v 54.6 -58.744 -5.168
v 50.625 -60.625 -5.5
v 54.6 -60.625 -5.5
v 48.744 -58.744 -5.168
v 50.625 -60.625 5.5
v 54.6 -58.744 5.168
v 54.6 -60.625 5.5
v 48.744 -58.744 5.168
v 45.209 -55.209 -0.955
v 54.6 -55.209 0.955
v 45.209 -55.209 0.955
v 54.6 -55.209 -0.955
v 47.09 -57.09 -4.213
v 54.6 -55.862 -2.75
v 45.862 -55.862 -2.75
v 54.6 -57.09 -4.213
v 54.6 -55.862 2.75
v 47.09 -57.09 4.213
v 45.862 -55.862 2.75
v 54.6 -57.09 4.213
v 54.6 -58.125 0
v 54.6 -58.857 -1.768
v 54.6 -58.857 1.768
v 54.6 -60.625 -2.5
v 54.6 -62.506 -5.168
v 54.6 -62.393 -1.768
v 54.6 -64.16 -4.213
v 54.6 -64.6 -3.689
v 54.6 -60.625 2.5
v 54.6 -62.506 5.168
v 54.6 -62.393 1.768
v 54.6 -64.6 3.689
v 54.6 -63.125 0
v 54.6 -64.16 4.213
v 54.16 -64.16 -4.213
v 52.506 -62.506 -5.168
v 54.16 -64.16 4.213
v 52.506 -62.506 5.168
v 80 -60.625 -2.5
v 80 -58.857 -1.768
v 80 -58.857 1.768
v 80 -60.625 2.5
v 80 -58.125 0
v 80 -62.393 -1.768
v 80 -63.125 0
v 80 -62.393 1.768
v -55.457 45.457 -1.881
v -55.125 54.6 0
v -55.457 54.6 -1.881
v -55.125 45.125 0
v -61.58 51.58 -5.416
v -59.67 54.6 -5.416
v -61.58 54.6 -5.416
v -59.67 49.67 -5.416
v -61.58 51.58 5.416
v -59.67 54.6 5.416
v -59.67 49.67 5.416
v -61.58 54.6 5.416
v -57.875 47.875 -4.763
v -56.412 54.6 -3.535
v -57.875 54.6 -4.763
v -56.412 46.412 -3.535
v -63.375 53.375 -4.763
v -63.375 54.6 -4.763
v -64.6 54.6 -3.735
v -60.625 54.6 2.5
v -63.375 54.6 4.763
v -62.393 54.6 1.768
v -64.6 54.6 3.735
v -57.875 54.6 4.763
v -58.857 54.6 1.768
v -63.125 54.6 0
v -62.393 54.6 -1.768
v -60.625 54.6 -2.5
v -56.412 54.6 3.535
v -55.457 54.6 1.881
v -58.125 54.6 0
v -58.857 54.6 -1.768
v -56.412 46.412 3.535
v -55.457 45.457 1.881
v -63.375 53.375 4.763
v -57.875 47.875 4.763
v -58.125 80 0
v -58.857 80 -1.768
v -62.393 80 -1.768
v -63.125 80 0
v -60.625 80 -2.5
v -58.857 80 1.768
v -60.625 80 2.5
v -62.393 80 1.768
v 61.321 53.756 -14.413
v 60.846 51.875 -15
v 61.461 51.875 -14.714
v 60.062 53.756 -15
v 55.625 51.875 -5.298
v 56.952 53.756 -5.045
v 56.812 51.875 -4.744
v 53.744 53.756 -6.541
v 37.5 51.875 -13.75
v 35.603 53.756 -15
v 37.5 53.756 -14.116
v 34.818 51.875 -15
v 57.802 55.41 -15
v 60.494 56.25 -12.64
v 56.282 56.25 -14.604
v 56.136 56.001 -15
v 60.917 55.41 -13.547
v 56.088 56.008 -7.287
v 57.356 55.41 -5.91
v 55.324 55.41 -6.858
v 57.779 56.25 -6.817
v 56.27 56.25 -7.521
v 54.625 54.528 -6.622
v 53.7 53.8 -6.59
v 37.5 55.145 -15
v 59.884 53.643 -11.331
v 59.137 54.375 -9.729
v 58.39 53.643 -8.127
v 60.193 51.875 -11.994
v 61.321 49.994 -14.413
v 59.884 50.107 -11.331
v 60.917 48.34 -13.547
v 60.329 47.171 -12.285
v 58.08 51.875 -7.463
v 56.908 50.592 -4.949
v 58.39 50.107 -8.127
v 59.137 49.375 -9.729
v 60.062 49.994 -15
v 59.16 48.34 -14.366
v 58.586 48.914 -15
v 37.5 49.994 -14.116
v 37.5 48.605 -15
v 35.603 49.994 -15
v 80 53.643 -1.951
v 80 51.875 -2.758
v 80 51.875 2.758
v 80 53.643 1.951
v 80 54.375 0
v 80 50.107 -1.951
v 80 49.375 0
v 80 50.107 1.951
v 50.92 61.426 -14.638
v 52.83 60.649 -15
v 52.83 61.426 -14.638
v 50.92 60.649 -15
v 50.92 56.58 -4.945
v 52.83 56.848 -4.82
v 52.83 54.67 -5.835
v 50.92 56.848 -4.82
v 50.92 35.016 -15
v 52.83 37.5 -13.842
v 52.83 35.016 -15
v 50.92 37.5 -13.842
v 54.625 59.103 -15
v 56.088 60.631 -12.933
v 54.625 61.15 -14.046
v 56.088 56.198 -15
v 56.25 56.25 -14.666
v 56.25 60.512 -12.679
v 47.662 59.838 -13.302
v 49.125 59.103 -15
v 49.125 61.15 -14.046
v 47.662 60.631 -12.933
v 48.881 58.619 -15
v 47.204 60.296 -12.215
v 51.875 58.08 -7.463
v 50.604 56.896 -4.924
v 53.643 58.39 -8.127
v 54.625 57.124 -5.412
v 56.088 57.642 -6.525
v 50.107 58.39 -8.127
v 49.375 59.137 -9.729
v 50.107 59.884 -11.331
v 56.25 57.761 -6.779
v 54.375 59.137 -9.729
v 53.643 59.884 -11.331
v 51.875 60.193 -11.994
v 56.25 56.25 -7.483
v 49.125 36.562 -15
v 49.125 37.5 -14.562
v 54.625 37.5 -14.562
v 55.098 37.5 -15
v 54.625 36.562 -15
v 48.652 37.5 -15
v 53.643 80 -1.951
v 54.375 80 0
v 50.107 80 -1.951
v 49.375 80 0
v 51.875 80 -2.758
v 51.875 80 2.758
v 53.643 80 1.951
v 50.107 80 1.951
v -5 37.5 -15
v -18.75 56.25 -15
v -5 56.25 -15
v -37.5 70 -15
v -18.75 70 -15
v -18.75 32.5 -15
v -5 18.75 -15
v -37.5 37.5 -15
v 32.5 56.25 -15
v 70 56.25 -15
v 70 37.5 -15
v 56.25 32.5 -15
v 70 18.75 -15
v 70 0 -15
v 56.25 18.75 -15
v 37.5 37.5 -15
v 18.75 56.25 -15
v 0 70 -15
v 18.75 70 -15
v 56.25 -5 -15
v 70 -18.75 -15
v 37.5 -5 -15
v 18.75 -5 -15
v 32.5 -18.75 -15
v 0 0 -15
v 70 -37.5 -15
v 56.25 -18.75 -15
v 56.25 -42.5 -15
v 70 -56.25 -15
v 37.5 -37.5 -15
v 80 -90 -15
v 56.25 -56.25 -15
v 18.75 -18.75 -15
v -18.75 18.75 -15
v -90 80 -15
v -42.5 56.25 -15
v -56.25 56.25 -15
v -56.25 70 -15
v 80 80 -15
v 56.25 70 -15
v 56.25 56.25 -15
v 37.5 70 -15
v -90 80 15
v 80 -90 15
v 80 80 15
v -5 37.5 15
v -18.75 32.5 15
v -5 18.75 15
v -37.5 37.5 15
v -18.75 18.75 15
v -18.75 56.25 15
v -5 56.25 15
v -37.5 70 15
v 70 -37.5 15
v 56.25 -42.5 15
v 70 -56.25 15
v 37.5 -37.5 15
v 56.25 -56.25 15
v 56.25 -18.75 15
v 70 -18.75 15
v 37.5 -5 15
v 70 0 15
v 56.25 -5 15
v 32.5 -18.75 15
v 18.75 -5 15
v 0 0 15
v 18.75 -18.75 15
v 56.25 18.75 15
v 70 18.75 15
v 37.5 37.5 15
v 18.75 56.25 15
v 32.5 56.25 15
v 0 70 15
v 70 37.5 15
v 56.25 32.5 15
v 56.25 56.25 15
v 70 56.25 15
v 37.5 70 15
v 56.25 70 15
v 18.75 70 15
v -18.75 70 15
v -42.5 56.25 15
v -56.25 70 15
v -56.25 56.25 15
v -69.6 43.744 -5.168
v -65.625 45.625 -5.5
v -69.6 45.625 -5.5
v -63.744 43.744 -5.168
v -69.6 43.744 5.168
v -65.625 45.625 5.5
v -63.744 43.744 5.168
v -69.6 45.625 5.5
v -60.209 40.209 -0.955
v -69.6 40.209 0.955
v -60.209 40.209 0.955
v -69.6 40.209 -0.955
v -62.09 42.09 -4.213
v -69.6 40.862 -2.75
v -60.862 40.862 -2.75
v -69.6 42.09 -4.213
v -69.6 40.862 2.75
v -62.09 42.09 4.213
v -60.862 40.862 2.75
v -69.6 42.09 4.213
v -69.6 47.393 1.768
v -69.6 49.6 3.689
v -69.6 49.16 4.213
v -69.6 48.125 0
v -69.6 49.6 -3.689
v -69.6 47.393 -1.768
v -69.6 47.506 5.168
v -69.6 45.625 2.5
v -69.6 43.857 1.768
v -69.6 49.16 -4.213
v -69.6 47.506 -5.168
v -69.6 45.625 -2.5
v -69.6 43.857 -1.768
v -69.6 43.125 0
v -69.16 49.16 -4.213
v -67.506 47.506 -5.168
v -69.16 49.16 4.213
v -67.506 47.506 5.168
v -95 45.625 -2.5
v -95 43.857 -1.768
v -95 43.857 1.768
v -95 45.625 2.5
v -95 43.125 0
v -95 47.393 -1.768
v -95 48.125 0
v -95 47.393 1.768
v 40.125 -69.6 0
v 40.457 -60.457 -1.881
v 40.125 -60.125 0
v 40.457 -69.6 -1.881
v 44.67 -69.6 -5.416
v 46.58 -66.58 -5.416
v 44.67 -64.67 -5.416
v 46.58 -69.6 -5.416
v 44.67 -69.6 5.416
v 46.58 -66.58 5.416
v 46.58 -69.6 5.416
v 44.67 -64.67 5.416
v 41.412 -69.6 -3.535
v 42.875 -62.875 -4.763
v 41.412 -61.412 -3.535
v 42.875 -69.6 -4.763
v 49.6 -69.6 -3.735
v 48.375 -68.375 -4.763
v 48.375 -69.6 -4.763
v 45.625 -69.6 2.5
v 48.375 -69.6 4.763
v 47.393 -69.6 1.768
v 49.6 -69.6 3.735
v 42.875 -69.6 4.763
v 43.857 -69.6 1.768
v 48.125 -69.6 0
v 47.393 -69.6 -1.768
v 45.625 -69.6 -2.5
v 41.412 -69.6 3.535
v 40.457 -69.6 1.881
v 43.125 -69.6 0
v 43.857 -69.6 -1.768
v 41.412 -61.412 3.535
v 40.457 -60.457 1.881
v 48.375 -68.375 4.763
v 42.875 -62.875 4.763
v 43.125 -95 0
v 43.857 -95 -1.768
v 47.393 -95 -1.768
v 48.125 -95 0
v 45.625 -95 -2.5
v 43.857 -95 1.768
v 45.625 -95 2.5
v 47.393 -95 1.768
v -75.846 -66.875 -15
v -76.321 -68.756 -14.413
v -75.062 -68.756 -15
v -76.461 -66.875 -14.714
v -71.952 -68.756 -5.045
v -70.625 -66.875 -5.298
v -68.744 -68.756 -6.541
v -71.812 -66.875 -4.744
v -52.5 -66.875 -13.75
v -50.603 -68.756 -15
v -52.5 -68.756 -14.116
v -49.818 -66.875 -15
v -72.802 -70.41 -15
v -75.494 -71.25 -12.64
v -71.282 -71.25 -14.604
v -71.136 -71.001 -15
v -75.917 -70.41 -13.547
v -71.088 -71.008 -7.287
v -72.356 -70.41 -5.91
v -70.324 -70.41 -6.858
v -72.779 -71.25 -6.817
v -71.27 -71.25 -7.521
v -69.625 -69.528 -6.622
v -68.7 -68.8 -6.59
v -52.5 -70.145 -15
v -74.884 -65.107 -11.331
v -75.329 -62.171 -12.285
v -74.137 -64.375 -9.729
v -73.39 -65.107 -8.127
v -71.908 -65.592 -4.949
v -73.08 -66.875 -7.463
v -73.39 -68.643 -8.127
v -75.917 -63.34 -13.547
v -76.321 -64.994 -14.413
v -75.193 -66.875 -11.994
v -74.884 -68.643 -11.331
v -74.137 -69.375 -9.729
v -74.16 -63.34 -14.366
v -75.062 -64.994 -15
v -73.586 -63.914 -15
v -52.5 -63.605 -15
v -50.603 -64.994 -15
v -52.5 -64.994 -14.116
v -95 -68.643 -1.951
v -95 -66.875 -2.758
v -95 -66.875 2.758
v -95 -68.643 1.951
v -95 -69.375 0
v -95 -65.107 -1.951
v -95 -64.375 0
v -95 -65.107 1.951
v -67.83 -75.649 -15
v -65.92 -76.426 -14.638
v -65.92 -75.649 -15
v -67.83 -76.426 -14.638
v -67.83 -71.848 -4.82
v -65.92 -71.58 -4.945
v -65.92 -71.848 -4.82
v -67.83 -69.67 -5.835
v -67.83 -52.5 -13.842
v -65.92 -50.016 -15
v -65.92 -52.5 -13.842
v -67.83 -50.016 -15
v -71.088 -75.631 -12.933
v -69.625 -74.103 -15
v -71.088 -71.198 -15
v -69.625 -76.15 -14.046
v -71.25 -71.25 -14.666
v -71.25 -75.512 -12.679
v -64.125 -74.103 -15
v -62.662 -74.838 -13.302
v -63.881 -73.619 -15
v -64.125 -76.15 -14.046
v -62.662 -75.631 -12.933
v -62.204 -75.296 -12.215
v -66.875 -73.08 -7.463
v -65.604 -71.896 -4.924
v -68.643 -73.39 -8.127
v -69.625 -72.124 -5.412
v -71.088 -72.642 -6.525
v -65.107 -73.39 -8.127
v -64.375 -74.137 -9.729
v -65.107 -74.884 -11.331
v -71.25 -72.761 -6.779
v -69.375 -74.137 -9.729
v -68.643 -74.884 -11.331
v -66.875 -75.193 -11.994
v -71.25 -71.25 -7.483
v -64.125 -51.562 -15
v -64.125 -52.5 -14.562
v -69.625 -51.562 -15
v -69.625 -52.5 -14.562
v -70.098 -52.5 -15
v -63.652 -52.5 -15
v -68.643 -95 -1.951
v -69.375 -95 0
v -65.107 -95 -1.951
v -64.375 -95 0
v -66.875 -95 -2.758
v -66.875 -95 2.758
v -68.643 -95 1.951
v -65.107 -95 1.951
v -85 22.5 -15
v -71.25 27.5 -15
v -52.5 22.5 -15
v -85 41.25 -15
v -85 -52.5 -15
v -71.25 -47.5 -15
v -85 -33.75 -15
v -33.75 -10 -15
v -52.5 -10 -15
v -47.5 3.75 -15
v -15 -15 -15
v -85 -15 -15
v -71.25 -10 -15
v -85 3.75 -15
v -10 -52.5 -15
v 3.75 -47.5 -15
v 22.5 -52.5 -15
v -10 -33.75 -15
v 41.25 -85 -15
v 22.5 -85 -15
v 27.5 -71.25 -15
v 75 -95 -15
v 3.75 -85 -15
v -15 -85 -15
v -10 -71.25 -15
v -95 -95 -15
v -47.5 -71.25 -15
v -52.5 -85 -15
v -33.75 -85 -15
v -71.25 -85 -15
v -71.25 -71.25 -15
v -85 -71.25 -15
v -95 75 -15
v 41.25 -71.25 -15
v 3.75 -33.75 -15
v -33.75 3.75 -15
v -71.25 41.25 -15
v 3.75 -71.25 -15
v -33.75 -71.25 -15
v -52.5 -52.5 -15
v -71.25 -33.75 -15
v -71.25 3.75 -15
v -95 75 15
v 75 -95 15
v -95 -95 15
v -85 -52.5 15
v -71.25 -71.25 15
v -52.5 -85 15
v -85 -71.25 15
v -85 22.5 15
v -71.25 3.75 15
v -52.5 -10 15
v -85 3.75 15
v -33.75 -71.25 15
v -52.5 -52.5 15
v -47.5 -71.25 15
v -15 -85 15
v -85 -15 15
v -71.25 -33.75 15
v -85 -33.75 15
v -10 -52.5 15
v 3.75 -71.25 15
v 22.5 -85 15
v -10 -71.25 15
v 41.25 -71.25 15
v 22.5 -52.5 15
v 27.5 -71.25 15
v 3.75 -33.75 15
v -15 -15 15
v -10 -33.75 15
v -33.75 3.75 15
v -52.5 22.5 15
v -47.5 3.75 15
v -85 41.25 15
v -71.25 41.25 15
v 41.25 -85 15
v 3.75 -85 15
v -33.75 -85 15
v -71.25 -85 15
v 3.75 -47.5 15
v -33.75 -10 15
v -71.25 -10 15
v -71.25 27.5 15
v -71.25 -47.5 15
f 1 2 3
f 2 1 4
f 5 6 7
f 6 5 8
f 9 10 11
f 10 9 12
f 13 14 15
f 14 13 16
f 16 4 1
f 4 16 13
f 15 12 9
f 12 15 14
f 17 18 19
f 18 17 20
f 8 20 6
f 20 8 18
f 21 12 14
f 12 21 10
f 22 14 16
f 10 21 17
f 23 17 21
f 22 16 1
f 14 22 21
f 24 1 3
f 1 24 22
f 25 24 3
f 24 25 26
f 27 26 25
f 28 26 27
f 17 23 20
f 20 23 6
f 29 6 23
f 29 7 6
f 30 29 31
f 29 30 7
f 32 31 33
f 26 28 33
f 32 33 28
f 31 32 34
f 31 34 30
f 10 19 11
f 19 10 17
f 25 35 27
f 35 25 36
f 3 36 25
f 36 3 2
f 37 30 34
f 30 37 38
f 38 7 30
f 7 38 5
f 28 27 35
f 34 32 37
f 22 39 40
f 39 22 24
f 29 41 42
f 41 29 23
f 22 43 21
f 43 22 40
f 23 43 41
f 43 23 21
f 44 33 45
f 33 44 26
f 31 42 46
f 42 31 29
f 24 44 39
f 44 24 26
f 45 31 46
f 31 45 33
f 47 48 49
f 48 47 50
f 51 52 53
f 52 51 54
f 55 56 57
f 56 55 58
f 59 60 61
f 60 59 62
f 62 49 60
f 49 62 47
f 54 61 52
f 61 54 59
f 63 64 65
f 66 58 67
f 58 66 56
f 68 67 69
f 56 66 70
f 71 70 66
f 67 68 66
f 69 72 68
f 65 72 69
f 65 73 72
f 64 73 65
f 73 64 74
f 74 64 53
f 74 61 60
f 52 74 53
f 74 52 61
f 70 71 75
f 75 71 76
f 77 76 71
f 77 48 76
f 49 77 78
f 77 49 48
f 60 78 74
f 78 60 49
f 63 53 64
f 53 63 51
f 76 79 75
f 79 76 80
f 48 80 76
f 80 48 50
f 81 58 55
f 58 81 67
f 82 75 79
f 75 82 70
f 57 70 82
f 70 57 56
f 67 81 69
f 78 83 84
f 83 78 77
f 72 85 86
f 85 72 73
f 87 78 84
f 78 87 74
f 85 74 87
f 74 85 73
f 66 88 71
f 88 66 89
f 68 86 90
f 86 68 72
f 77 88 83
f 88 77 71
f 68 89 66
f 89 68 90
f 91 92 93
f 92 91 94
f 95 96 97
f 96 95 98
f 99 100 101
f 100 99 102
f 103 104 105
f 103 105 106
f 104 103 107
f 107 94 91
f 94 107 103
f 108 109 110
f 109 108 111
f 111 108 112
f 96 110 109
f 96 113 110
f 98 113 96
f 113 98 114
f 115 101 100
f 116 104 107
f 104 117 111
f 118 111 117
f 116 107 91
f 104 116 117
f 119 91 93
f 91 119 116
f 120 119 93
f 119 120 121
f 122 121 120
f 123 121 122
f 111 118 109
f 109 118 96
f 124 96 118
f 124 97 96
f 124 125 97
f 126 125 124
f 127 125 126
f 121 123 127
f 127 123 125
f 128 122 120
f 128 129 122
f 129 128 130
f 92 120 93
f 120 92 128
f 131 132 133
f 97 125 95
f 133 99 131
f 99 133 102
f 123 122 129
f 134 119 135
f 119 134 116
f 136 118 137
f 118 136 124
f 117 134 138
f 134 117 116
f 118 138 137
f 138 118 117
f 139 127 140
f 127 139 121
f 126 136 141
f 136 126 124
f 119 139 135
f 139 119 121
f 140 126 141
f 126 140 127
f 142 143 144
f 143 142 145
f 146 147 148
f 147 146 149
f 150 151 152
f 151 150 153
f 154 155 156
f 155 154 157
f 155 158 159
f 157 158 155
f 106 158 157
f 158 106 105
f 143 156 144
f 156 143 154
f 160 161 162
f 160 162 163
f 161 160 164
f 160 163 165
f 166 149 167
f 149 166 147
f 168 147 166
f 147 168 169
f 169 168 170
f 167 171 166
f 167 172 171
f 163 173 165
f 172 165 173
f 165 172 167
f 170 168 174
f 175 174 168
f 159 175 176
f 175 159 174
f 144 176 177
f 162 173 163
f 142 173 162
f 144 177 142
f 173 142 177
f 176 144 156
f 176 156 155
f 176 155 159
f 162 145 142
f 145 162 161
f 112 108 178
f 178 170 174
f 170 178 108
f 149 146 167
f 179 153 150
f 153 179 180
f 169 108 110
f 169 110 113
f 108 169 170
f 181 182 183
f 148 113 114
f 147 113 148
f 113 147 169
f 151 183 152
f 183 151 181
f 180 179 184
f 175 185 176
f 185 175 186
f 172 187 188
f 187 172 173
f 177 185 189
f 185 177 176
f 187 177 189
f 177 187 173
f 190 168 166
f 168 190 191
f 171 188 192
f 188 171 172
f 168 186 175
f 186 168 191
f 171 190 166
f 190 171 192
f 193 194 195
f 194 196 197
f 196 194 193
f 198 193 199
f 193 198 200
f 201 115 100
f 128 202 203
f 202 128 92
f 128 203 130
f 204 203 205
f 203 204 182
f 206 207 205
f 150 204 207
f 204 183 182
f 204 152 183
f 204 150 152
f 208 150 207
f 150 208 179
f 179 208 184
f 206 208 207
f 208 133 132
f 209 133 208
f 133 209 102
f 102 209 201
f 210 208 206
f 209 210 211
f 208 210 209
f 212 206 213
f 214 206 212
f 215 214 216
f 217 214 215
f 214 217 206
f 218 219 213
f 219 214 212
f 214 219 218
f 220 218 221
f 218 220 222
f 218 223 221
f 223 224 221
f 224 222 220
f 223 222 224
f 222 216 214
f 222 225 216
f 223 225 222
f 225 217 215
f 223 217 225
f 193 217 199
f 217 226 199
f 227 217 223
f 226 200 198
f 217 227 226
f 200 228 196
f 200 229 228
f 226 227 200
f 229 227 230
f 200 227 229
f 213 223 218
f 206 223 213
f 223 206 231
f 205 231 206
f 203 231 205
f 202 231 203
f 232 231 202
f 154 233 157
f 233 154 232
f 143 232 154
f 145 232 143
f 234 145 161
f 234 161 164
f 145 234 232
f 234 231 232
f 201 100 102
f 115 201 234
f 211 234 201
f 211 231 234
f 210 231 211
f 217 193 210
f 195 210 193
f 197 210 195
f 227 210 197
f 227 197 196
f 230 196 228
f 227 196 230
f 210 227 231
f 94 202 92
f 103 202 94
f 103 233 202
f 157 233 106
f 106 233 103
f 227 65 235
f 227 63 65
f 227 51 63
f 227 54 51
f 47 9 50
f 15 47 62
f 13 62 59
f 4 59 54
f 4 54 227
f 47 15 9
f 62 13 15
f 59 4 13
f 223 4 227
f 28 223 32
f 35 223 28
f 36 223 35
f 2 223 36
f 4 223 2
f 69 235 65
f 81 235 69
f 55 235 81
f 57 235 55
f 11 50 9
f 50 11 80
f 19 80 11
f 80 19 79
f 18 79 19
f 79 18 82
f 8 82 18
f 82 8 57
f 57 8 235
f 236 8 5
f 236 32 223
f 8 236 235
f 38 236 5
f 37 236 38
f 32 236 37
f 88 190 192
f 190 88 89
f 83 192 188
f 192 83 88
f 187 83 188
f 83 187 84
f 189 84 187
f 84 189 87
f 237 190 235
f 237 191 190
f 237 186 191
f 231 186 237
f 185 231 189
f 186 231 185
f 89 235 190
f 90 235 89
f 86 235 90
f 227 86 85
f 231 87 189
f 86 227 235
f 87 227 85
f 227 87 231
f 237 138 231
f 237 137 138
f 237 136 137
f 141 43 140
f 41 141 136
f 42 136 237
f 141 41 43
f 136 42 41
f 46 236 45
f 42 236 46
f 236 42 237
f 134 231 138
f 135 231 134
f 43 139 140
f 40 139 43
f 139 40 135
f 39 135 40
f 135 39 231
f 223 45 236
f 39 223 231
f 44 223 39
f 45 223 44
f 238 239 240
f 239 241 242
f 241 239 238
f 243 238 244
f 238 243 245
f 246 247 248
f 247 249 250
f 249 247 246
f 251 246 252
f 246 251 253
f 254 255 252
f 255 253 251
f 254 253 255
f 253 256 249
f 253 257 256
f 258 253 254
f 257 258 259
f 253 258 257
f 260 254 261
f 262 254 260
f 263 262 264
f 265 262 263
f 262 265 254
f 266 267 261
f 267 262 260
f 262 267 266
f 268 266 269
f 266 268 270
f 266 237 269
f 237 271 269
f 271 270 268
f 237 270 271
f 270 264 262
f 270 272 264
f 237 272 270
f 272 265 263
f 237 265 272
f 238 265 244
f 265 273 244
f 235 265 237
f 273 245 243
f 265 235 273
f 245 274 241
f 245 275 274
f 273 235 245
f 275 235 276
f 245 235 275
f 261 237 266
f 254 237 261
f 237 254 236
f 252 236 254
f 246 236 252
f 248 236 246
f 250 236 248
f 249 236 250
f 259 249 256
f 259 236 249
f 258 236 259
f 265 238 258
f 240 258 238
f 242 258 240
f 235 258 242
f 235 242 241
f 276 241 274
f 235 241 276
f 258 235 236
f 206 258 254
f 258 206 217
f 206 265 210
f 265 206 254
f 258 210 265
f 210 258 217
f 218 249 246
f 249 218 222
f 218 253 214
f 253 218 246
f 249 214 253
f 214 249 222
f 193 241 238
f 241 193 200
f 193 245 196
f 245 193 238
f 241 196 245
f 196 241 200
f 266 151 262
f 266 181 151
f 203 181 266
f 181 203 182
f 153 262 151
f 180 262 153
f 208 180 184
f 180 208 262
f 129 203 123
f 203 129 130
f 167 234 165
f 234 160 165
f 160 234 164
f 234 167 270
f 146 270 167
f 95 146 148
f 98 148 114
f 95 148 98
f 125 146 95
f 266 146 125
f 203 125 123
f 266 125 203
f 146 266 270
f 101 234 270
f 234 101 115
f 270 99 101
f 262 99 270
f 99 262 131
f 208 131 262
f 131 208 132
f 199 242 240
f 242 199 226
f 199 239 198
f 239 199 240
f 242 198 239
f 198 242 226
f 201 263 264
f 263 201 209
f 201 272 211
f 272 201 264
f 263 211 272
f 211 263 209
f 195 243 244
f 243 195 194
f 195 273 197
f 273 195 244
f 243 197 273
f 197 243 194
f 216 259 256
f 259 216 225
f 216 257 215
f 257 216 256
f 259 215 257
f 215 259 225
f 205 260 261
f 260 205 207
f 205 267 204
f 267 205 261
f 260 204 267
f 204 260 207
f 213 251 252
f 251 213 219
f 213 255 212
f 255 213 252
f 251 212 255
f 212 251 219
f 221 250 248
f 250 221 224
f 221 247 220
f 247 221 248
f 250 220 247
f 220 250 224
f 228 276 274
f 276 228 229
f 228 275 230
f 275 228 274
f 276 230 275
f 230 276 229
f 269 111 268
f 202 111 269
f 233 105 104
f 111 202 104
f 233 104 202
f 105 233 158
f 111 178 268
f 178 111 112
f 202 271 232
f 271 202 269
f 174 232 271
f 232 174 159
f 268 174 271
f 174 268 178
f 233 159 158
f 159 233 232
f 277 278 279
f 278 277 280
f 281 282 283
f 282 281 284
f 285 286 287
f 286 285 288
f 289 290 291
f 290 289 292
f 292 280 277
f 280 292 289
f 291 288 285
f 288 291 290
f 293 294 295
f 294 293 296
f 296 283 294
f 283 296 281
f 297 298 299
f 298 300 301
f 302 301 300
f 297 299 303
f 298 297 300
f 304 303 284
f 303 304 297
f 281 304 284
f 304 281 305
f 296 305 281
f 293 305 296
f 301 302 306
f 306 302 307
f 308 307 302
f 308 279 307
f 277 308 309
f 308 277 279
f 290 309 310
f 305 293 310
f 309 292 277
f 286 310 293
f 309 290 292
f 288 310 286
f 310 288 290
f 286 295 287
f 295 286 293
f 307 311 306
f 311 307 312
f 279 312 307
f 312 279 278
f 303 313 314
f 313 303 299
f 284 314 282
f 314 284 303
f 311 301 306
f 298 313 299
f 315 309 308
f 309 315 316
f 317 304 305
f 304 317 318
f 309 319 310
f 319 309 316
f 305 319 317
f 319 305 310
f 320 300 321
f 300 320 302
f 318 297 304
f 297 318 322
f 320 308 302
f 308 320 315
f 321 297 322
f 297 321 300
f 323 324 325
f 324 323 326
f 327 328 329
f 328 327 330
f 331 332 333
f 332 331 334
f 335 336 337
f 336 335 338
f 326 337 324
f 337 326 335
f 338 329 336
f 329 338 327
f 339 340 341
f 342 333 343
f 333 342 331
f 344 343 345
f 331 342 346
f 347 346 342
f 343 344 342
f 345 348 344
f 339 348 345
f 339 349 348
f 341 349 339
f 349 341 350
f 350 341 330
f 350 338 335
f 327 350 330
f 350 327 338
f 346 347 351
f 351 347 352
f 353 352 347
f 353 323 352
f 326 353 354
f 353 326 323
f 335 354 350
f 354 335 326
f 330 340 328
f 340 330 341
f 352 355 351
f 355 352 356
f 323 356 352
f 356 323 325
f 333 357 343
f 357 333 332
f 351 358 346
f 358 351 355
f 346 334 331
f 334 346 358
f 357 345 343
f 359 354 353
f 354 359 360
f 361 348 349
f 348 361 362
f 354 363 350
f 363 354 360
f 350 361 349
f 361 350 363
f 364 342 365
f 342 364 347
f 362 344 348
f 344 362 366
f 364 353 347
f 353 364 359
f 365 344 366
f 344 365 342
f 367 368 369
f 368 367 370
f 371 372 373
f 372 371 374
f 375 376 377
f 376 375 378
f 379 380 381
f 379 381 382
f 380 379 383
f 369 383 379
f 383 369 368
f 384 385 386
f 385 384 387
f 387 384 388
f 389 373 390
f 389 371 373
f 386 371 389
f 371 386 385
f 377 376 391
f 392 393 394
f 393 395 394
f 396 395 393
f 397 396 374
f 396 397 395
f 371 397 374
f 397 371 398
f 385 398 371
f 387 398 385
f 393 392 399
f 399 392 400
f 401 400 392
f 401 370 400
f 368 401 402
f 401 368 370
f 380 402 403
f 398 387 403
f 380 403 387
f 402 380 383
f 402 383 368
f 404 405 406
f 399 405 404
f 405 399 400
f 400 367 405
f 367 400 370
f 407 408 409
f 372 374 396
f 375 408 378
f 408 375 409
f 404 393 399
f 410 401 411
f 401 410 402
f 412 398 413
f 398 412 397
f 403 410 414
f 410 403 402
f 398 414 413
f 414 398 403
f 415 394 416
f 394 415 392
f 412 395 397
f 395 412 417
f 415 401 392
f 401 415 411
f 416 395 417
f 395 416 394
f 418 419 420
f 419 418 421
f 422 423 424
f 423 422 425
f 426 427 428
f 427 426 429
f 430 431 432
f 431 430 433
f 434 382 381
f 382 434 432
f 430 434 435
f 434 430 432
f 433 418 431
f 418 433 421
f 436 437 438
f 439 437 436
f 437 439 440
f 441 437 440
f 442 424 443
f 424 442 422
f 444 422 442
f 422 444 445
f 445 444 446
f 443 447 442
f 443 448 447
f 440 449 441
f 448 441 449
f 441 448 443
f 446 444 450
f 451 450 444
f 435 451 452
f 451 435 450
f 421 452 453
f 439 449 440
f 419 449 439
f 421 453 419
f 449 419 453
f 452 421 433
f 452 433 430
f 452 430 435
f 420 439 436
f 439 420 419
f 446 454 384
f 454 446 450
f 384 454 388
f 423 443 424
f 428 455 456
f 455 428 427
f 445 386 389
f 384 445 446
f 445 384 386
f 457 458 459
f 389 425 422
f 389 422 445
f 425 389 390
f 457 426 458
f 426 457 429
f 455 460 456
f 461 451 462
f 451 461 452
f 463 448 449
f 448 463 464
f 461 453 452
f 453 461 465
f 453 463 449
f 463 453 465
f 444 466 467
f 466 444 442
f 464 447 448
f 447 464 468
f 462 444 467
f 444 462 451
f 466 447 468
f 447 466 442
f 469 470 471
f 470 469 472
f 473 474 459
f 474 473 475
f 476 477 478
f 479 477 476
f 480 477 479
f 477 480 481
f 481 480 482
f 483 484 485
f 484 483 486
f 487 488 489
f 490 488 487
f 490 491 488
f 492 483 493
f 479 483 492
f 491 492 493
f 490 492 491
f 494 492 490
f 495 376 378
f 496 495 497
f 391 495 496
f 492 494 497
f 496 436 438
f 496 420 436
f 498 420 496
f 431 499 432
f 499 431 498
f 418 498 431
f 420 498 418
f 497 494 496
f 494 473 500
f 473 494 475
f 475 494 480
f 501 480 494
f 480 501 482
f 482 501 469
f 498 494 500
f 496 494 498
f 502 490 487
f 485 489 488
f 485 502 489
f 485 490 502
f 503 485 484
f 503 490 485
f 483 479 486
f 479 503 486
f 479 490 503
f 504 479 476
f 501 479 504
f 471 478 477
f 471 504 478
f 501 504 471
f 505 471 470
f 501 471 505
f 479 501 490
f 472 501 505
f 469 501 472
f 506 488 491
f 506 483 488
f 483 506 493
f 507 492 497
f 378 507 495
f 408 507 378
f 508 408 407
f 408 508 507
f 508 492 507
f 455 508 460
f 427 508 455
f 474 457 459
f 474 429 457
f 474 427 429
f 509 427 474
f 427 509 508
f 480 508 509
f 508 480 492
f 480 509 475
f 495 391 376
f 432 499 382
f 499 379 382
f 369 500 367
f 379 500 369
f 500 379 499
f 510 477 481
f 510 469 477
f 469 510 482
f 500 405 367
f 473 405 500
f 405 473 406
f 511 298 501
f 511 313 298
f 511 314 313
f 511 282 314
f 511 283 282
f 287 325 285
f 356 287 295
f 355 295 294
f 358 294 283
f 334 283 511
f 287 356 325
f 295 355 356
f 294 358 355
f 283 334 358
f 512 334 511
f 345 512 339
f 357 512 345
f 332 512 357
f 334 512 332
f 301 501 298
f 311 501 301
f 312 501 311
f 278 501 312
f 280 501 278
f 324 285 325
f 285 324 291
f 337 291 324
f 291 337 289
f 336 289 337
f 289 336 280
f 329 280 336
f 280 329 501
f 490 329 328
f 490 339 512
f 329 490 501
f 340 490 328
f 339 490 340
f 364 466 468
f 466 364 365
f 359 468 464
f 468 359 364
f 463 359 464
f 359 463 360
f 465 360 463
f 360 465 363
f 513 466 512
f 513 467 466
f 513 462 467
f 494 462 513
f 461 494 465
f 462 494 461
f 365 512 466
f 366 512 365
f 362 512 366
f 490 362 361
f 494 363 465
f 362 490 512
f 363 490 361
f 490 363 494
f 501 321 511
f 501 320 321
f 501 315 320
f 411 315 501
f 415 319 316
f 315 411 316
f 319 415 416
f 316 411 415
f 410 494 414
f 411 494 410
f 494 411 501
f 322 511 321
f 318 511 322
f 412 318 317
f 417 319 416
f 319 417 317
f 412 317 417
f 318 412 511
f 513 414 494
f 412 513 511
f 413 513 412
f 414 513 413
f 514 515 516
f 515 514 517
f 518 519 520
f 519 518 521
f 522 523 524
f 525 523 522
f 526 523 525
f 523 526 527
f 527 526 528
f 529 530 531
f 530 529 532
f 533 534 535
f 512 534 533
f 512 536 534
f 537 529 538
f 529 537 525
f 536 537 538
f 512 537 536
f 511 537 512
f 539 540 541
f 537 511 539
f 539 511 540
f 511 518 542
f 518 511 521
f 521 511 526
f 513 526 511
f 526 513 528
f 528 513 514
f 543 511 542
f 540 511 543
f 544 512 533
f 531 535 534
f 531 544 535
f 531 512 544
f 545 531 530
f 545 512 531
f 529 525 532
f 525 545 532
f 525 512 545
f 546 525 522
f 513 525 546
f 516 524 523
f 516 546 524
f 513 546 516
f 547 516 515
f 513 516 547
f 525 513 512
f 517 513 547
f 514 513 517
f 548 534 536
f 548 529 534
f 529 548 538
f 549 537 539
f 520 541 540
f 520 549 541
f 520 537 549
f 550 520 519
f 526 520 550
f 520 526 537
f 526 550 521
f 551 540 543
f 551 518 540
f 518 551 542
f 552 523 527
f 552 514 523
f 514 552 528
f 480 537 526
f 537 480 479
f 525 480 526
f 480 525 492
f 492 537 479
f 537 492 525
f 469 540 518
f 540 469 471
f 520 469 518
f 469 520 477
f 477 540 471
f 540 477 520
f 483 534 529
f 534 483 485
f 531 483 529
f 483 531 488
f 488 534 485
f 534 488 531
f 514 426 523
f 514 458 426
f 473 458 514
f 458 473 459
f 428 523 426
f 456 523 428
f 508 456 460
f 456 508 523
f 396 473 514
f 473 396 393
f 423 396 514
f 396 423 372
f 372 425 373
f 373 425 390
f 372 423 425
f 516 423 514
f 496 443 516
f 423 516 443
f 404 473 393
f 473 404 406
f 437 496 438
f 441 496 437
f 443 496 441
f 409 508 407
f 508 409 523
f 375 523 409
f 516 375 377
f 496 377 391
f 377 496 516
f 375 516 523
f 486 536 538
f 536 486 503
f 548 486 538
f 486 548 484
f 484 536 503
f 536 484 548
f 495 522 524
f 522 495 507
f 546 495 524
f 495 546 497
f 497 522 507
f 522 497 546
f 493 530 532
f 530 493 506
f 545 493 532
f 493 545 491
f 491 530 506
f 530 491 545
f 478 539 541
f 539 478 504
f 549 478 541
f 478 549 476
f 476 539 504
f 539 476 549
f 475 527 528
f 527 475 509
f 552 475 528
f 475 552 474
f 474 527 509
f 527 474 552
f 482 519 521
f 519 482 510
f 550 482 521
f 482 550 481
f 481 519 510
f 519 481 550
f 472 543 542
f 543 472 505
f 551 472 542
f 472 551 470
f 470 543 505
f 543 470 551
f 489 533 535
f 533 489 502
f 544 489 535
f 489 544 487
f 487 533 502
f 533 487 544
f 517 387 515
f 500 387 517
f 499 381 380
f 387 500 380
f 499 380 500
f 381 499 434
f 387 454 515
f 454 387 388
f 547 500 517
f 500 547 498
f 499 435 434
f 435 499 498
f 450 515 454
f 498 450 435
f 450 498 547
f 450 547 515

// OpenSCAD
/*
  Shelf bracket based on Sierpinkski's triangle.

  This bracket is designed for use with 1.5" screws and a drill. In particular,
  the mounting holes are countersunk such that 1.5" screws will not stick
  through a ~0.5 in shelf when tightened. Two of the holes diagonally
  countersunk so as to be accessible from the side. This means that you need to
  install pairs of brackets in opposite 'handed-ness' for maximum lateral
  stability.

*/

sidelength = 150;
thickness = 30;

screwlength = 38.1; // 1.5 inches in mm
screwhead = 5.5;
screwshaft = 2.5;   // penis.
angle = 25;

shelfthickness = 12.7; // 0.5 in in mm

module triangle(size=sidelength, height=1) {
  // extrudes a right triangle of given size and thickness
  linear_extrude(height=height, center=true)
  polygon(points = [[0, 0], [size, 0], [0, size]], paths = [[0, 1, 2]]);
}

module countersink() {
  // The thinner cylinder can be used to show how far your
  // screw will penetrate.
  union() {
    translate([0, 0, -screwlength])
      cylinder(r=screwhead, h=screwlength);
    #cylinder(r=screwshaft, h=screwlength);
  }
}

S = sidelength/2; // precompute this oft-used value
P = 5;            // padding for outer edges
E = screwlength - shelfthickness;


module bracket() {
difference() {
  translate([S+P, S+P, 0])
    rotate(180, [0,0,1])
    triangle(sidelength + P*4, thickness);

  triangle(S-P, 50);
  translate([S/2, -S/2, 0])  triangle(size=S/2-P, height=50);
  translate([-S/2, S/2, 0])  triangle(size=S/2-P, height=50);
  translate([S/2, S/2, 0]) triangle(size=S/2-P, height=50);
  translate([-S/4, S/4, 0]) triangle(size=S/4-P, height=50);
  translate([S/4, S*3/4, 0]) triangle(size=S/4-P, height=50);
  translate([-S/4, S*3/4, 0]) triangle(size=S/4-P, height=50);
  translate([S/4, -S/4, 0]) triangle(size=S/4-P, height=50);
  translate([S*3/4, S/4, 0]) triangle(size=S/4-P, height=50);
  translate([S*3/4, -S/4, 0]) triangle(size=S/4-P, height=50);
  translate([S*3/4, -S*3/4, 0]) triangle(size=S/4-P, height=50);
  translate([-S*3/4, S*3/4, 0]) triangle(size=S/4-P, height=50);
  translate([S*3/4, S*3/4, 0]) triangle(size=S/4-P, height=50);

  rotate(90, [0, 1, 0])
    translate([0, -(S*7/8-P), S+5-E])
    countersink();

  rotate(-90, [1, 0, 0])
    translate([-(S*7/8-P), 0, S+5-E])
    countersink();


  rotate(90, [0, 1, 0])
    translate([0, (S*5/8+P), S+5])
    rotate(-angle, [0, 1, 0])
    translate([0, 0, -E*cos(angle)])
    countersink();

  rotate(-90, [1, 0, 0])
    translate([S*5/8+P, 0, S+5])
    rotate(angle, [1, 0, 0])
    translate([0, 0, -E*cos(angle)])
    countersink();
}
}

bracket();
rotate([0,0,180]) 
  translate([15,15,0]) 
    bracket();
